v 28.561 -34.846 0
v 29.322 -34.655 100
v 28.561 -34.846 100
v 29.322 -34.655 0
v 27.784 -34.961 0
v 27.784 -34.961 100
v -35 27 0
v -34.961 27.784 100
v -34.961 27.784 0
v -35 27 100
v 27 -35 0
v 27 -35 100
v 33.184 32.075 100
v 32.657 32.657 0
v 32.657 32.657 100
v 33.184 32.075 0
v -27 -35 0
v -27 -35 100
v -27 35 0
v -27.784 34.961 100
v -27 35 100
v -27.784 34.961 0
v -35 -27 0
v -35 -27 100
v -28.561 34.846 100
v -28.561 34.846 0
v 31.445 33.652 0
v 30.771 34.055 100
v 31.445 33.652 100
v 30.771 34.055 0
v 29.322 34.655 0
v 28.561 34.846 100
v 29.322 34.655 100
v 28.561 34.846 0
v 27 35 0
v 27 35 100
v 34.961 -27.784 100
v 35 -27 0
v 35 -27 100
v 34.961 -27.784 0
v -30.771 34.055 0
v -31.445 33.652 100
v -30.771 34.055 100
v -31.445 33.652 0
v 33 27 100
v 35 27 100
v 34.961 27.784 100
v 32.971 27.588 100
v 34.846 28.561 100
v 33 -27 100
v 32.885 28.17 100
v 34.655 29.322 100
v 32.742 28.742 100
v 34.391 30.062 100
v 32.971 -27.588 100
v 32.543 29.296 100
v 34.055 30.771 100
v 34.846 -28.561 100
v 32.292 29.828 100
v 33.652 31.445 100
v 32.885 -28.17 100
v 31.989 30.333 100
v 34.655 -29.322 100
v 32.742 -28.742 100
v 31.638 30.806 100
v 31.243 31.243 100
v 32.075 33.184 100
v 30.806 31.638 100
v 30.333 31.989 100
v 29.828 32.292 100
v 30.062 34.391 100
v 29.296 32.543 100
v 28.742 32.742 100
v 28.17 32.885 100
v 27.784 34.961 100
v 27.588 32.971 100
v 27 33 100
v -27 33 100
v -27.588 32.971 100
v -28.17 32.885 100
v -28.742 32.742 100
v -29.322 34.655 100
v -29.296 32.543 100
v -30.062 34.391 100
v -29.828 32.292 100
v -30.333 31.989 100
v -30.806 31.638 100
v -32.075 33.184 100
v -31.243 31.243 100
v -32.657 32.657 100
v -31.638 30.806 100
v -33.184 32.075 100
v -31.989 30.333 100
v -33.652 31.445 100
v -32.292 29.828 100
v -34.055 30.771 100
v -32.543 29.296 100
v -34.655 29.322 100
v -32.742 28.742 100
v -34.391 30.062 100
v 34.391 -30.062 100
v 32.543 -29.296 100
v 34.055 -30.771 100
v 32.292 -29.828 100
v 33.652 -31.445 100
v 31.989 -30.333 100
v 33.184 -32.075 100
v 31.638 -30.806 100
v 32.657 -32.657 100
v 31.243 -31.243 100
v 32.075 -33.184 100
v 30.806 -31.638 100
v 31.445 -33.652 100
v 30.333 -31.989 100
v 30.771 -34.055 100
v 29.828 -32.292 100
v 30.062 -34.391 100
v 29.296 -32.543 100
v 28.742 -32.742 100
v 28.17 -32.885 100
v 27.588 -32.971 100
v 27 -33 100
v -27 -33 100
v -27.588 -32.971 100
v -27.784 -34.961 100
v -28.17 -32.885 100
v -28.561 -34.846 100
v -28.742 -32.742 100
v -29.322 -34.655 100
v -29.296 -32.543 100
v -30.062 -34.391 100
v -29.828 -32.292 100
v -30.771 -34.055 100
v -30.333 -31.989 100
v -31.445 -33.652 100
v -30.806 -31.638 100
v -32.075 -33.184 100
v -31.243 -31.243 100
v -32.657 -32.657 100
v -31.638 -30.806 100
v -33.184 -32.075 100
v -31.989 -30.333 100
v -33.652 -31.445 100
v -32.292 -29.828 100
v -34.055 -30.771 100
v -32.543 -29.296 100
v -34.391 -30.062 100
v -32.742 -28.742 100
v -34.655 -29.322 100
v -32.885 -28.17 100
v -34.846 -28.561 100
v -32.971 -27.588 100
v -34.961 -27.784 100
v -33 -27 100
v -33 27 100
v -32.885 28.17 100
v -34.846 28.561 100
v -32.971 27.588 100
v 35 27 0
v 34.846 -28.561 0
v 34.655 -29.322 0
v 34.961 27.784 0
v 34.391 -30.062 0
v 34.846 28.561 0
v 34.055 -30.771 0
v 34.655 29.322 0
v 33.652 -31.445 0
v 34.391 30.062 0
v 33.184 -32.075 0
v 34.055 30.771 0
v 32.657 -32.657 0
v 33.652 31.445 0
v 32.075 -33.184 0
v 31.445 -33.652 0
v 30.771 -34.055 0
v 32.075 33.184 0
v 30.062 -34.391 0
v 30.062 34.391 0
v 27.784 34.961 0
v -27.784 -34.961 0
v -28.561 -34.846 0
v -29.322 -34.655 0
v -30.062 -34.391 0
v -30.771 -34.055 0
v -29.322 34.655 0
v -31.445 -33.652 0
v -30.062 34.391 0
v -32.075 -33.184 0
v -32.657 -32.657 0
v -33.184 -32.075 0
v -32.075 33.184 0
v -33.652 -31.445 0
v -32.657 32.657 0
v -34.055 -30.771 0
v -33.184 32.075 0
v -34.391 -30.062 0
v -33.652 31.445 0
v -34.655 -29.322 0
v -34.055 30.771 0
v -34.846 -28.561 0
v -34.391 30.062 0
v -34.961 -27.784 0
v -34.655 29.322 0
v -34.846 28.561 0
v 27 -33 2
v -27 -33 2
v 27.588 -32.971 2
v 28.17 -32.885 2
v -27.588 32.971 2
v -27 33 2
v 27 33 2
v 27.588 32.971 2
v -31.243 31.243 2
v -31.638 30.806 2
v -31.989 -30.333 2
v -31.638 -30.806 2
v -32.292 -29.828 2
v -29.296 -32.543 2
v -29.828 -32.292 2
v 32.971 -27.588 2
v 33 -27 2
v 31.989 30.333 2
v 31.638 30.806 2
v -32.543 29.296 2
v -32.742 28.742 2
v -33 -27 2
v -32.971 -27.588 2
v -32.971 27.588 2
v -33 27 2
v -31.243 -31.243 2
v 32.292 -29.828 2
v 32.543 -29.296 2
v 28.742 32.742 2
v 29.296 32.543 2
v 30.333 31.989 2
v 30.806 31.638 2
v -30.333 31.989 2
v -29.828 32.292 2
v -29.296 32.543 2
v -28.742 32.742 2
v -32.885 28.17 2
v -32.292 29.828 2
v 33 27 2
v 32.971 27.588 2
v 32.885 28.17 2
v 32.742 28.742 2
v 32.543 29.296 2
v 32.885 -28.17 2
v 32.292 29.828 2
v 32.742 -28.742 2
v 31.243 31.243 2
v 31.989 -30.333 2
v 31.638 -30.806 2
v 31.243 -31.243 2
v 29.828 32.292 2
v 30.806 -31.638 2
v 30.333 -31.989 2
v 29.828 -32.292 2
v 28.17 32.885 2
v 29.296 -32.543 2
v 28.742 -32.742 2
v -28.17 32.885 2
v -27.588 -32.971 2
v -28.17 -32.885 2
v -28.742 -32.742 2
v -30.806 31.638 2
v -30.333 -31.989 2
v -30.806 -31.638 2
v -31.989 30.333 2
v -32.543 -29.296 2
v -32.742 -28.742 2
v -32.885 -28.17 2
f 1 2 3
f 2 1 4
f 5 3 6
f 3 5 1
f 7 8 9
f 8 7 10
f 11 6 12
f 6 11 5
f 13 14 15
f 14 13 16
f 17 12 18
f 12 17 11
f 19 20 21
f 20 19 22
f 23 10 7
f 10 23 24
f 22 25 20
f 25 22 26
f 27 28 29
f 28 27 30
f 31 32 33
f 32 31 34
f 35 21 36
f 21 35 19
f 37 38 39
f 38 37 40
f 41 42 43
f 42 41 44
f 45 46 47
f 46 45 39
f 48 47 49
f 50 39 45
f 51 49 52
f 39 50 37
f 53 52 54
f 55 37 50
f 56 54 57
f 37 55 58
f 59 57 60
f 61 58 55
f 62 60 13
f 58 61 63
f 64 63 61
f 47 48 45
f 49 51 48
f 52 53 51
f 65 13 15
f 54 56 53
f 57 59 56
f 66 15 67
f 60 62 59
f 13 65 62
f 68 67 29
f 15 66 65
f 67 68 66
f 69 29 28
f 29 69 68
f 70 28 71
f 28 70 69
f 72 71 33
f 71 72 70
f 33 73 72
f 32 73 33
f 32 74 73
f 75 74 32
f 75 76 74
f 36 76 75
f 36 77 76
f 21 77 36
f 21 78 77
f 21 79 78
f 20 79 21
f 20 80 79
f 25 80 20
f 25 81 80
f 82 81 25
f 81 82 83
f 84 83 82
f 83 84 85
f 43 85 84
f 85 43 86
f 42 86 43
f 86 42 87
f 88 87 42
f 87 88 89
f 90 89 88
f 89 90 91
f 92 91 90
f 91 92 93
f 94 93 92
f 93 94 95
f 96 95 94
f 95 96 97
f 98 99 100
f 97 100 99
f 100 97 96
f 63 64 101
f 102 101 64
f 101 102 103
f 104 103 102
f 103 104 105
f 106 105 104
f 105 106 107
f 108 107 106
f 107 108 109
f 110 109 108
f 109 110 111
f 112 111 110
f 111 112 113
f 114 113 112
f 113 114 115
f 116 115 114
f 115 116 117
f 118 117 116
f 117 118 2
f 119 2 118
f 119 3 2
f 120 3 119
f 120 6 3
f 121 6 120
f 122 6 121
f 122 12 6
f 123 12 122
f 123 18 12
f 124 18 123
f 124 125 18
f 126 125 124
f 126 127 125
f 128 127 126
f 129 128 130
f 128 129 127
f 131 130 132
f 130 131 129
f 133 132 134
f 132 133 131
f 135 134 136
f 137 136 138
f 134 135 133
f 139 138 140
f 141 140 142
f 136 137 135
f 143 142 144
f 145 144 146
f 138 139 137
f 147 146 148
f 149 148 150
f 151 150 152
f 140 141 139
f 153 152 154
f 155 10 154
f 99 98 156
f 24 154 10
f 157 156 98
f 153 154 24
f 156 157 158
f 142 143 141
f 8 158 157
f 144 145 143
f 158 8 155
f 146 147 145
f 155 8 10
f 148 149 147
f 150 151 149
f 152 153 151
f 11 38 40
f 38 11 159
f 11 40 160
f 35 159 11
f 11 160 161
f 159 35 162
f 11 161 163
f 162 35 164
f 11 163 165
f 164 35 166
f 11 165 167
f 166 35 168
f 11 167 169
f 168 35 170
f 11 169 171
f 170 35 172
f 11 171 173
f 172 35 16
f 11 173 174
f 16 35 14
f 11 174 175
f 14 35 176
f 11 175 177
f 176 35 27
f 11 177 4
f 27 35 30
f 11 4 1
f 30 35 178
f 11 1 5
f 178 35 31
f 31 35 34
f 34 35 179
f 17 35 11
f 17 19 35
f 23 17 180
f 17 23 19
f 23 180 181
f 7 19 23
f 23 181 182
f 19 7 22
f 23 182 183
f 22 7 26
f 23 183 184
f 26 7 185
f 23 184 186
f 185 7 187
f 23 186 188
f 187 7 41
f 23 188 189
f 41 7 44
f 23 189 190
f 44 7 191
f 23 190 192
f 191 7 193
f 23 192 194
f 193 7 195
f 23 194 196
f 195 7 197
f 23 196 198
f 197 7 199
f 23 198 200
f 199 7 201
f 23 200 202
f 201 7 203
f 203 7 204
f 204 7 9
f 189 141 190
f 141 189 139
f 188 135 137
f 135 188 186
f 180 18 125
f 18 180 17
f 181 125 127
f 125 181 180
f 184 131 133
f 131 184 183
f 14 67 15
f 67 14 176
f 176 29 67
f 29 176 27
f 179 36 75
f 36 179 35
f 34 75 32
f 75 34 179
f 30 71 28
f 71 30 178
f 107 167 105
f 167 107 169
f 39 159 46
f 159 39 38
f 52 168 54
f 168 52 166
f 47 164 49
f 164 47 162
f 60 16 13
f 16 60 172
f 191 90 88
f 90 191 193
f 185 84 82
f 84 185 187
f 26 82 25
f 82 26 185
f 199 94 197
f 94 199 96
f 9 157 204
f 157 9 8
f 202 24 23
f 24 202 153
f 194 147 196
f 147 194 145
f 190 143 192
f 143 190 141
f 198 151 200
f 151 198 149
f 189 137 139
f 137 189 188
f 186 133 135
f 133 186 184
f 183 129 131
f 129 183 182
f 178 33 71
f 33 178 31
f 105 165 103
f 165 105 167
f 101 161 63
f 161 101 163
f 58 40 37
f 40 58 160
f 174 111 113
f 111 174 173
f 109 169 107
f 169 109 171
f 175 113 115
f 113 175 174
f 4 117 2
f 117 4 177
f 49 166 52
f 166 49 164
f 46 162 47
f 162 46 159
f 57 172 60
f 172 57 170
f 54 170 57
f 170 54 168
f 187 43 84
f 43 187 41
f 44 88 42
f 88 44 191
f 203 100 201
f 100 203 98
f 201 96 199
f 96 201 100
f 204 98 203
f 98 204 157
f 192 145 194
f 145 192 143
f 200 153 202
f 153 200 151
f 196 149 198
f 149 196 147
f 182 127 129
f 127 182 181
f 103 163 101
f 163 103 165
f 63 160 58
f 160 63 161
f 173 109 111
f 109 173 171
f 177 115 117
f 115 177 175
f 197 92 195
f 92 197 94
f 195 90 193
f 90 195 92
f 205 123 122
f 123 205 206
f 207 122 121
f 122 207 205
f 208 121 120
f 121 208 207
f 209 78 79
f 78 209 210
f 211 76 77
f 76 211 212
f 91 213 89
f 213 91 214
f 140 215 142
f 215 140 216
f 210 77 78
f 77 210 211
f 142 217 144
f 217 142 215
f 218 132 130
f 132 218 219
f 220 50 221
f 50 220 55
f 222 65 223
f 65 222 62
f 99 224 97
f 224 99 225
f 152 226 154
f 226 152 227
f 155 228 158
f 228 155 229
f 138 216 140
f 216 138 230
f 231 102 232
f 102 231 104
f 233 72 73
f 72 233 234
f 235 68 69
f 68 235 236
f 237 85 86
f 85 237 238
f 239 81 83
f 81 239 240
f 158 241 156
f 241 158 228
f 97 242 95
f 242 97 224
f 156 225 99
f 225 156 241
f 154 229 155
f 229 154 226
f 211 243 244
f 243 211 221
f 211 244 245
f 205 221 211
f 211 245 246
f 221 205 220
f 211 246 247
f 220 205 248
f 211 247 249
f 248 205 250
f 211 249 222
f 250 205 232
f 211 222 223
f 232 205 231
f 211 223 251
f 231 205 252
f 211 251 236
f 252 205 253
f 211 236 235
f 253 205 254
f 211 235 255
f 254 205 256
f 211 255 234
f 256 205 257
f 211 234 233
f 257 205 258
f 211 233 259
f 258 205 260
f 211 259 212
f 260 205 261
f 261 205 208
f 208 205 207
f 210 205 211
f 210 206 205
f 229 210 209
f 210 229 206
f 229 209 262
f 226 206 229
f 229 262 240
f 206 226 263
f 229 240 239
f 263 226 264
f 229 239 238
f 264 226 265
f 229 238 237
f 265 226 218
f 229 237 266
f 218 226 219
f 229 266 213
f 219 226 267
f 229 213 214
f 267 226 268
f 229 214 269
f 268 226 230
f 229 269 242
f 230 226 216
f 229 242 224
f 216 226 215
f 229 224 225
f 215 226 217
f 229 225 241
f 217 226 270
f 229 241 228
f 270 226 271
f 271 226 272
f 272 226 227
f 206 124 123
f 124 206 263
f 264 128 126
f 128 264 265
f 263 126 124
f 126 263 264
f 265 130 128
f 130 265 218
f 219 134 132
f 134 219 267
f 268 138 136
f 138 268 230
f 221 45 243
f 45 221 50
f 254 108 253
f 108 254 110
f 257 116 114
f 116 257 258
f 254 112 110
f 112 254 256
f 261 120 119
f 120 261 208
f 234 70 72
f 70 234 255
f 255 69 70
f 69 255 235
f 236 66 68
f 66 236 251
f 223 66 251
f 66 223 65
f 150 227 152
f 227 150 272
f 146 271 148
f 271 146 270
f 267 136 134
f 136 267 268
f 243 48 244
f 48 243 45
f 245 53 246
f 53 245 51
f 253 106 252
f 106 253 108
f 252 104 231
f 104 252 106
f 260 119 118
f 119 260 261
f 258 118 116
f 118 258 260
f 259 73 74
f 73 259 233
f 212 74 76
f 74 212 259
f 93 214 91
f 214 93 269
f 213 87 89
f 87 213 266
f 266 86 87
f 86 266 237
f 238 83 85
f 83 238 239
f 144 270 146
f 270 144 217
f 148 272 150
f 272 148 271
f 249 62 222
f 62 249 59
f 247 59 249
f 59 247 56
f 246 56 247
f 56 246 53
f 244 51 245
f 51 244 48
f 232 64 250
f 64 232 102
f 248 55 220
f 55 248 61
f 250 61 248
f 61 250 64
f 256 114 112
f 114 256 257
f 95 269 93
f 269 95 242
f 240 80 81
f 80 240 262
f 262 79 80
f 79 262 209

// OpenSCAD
// LY-01 · Portalápices 70 x 70 x 100 mm, pared 2 mm
// Diseño e Impresión 3D en el aula · Pablo Moraga · CC BY-NC-ND 4.0
$fn = 64;
difference() {
  linear_extrude(100) offset(r = 8) square(54, center = true);
  translate([0, 0, 2]) linear_extrude(100) offset(r = 6) square(54, center = true);
}
